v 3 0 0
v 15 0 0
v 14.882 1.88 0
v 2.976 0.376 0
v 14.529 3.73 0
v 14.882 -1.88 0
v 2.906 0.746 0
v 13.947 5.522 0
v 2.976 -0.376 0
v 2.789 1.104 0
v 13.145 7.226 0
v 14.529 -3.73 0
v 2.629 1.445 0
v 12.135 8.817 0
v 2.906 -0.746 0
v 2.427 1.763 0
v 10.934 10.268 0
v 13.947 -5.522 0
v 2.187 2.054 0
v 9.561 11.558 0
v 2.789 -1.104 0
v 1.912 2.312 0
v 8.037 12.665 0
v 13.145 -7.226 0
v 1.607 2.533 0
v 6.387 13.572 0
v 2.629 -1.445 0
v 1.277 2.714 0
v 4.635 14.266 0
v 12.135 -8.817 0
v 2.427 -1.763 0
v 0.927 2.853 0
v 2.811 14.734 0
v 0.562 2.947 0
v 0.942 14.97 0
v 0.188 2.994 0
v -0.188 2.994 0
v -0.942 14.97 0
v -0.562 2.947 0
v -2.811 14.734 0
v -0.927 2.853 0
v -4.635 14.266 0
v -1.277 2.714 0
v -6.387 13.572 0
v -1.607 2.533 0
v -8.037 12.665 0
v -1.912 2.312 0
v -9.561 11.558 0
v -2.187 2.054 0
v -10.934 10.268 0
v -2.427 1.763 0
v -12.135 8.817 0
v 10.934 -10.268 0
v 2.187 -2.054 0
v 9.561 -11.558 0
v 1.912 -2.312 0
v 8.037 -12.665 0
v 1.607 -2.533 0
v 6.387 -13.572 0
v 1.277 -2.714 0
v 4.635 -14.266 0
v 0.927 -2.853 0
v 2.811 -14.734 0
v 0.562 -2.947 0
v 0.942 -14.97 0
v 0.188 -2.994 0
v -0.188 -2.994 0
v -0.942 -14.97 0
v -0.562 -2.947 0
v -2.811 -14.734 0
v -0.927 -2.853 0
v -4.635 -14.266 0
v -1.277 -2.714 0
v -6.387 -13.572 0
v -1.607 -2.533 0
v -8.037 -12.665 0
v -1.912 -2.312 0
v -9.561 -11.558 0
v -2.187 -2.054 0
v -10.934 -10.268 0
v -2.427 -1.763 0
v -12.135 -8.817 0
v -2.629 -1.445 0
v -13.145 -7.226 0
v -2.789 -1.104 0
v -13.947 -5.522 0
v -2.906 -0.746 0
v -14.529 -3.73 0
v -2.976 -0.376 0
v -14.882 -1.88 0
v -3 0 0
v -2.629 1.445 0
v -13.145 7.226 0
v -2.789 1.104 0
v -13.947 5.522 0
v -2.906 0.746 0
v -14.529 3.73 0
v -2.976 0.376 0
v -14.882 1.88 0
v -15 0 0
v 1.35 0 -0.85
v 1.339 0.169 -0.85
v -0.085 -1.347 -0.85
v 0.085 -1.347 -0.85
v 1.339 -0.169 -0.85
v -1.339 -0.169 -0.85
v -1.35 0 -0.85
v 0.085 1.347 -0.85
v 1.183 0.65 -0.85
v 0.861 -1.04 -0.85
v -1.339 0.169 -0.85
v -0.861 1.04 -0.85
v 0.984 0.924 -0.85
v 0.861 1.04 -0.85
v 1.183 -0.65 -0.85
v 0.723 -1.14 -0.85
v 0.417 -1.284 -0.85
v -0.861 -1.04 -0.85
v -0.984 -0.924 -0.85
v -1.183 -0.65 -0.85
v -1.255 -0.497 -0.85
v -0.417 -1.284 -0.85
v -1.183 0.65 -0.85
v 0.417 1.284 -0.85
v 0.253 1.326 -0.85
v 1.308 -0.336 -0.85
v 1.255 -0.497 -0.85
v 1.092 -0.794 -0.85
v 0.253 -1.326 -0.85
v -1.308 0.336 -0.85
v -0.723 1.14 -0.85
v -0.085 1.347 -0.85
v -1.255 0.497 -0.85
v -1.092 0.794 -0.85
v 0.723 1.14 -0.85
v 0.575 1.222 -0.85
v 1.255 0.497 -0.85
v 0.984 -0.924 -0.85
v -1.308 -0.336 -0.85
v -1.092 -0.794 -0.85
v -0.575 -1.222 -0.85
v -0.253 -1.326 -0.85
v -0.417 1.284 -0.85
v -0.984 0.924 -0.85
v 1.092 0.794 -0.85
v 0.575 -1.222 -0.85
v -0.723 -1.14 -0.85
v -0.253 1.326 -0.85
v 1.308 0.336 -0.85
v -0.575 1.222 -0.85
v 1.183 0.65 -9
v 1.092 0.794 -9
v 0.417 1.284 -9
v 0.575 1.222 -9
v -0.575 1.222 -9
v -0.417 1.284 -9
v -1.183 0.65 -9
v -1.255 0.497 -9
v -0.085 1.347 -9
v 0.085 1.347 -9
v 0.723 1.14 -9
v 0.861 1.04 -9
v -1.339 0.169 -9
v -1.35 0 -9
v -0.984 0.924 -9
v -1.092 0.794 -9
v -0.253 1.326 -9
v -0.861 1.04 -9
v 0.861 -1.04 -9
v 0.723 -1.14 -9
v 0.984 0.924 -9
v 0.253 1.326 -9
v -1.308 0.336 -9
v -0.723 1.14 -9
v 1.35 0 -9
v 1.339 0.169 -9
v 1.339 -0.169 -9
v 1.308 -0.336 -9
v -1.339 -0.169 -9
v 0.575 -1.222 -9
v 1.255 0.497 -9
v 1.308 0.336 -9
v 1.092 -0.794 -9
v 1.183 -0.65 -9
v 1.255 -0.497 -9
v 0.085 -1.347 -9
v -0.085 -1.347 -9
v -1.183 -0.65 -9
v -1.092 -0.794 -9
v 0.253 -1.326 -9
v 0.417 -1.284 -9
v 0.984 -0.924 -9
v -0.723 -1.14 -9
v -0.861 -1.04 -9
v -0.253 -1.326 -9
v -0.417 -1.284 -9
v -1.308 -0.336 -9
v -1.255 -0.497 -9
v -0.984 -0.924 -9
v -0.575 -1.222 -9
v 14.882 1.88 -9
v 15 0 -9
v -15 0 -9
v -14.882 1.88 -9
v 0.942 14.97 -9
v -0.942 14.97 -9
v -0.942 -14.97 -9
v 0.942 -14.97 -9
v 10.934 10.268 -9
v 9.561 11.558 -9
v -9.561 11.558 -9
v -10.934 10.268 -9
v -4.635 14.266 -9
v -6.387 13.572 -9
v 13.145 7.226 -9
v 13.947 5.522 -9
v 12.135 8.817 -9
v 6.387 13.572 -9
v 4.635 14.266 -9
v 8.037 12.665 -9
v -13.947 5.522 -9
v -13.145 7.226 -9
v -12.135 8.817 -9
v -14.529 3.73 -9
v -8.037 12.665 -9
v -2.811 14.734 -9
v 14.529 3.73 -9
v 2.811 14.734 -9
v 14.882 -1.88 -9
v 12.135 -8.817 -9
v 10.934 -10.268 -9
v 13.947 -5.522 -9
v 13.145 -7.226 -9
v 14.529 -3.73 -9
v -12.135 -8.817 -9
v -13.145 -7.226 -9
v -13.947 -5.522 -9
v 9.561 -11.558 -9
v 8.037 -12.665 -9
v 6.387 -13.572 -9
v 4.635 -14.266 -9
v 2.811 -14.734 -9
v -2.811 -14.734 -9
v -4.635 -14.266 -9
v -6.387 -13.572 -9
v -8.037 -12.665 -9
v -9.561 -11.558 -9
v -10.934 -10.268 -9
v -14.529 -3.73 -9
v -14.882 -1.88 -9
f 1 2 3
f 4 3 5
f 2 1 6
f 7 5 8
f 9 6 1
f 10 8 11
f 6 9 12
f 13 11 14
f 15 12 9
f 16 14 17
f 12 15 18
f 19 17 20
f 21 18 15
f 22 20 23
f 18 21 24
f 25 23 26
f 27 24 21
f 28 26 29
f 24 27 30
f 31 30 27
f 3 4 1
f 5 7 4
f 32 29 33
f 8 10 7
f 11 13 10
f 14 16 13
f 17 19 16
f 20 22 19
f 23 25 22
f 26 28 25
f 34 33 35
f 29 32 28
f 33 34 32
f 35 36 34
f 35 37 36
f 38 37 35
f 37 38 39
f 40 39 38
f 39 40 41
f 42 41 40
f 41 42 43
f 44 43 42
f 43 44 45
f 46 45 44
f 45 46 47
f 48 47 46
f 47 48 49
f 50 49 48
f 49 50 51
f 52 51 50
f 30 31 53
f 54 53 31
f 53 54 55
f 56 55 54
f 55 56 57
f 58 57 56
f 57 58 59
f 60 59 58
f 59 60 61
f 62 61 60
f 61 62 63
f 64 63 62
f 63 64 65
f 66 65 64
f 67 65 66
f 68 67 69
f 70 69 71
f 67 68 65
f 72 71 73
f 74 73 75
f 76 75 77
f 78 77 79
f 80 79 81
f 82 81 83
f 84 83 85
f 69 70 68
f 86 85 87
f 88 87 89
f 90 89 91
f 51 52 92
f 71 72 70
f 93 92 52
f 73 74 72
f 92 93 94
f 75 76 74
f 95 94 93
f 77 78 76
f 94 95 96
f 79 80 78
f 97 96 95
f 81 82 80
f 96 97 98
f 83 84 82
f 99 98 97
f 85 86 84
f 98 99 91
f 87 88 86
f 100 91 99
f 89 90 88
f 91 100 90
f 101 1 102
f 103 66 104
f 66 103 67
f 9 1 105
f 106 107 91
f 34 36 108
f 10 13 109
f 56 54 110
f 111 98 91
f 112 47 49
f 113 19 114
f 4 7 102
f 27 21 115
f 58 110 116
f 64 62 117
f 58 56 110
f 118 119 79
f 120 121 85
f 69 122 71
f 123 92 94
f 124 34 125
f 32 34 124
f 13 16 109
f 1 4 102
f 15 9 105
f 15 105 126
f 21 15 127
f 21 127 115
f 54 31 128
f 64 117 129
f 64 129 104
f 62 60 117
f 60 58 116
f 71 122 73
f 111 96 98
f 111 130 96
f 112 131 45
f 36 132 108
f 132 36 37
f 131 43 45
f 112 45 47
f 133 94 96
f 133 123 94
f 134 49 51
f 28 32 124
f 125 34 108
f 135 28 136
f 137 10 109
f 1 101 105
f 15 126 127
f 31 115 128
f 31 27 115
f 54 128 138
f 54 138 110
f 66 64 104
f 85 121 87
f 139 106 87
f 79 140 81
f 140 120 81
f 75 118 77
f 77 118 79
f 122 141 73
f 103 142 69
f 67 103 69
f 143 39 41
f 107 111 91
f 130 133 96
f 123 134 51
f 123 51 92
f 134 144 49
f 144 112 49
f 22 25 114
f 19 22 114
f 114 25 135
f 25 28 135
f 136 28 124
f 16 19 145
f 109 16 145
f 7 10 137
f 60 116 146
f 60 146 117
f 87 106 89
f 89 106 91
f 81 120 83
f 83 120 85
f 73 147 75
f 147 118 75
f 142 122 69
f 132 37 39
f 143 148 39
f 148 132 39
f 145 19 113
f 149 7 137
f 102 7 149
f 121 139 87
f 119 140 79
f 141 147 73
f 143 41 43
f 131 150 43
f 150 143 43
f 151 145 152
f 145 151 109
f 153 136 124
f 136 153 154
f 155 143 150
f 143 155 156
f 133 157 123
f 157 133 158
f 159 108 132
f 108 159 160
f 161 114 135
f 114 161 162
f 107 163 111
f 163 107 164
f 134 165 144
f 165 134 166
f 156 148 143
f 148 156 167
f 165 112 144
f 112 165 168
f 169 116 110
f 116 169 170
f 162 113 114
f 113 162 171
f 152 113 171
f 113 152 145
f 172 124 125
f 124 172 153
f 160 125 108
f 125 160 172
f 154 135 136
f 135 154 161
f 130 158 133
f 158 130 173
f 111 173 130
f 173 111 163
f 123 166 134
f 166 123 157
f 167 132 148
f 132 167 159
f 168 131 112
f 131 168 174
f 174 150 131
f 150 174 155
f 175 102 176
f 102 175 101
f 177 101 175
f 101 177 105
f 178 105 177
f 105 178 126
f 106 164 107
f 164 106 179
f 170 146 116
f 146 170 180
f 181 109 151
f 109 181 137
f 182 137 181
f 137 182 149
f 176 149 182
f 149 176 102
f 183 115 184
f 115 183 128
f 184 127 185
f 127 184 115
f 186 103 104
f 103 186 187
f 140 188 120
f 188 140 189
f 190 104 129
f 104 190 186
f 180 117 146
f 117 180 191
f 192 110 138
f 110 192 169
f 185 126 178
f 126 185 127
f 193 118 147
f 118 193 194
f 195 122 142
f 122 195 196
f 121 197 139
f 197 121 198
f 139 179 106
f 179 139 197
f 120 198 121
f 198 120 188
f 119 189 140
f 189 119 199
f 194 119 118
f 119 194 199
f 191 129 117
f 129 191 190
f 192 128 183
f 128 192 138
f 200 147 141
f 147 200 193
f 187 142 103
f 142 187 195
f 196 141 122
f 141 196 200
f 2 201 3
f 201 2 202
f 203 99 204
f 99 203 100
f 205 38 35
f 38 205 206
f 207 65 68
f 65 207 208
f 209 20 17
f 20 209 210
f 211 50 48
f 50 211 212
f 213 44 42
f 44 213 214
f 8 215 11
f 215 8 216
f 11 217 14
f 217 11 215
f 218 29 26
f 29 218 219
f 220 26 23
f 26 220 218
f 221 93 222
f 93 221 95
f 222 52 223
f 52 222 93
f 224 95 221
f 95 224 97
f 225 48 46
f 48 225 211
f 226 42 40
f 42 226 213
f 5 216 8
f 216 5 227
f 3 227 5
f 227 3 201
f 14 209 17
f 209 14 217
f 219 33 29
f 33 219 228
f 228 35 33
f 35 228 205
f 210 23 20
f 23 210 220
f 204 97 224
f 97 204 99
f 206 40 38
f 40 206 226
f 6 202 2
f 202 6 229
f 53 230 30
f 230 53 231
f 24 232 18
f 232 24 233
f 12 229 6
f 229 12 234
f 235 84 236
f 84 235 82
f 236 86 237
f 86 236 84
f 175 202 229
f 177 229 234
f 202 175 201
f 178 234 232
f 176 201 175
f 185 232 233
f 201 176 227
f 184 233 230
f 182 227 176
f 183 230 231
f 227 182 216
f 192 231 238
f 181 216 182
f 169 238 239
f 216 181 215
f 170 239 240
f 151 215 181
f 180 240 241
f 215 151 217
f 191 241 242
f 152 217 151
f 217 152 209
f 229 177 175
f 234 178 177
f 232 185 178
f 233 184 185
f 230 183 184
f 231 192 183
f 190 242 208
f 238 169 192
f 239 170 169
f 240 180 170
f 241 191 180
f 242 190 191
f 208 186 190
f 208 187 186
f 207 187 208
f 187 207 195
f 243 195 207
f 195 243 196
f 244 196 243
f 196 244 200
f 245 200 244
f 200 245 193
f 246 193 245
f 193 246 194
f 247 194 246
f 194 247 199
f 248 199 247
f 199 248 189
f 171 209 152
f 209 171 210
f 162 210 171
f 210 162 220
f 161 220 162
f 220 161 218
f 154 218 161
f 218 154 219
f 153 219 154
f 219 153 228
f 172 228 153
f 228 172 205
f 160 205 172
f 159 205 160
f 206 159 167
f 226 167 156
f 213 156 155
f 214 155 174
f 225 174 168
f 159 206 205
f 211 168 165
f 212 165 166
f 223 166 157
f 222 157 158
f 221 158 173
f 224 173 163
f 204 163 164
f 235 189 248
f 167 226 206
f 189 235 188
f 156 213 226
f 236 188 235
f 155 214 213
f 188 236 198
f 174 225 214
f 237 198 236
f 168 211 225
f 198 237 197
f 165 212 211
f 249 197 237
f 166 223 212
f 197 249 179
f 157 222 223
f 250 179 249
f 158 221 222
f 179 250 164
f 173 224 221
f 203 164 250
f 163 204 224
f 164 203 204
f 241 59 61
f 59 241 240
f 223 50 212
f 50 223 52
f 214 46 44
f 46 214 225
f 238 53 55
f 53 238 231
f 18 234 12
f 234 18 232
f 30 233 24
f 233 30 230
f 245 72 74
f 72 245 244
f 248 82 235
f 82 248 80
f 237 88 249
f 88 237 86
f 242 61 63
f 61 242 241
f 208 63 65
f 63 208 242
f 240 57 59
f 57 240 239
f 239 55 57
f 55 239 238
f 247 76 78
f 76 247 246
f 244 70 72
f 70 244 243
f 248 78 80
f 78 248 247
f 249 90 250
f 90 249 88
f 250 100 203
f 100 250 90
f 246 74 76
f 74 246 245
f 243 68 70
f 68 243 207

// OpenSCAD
$fn = 50;

difference() {
	union() {
		translate(v = [0, 0, -9.0]) {
			cylinder(h = 9, r = 15.0);
		}
	}
	union() {
		translate(v = [0, 0, 0]) {
			rotate(a = [0, 0, 0]) {
				difference() {
					union() {
						translate(v = [0, 0, -12.0]) {
							cylinder(h = 12, r = 1.0);
						}
						translate(v = [0, 0, -0.85]) {
							cylinder(h = 0.85, r1 = 1.35, r2 = 3.0);
						}
						translate(v = [0, 0, -12.0]) {
							cylinder(h = 12, r = 1.35);
						}
						translate(v = [0, 0, -12.0]) {
							cylinder(h = 12, r = 1.0);
						}
					}
					union();
				}
			}
		}
	}
}
